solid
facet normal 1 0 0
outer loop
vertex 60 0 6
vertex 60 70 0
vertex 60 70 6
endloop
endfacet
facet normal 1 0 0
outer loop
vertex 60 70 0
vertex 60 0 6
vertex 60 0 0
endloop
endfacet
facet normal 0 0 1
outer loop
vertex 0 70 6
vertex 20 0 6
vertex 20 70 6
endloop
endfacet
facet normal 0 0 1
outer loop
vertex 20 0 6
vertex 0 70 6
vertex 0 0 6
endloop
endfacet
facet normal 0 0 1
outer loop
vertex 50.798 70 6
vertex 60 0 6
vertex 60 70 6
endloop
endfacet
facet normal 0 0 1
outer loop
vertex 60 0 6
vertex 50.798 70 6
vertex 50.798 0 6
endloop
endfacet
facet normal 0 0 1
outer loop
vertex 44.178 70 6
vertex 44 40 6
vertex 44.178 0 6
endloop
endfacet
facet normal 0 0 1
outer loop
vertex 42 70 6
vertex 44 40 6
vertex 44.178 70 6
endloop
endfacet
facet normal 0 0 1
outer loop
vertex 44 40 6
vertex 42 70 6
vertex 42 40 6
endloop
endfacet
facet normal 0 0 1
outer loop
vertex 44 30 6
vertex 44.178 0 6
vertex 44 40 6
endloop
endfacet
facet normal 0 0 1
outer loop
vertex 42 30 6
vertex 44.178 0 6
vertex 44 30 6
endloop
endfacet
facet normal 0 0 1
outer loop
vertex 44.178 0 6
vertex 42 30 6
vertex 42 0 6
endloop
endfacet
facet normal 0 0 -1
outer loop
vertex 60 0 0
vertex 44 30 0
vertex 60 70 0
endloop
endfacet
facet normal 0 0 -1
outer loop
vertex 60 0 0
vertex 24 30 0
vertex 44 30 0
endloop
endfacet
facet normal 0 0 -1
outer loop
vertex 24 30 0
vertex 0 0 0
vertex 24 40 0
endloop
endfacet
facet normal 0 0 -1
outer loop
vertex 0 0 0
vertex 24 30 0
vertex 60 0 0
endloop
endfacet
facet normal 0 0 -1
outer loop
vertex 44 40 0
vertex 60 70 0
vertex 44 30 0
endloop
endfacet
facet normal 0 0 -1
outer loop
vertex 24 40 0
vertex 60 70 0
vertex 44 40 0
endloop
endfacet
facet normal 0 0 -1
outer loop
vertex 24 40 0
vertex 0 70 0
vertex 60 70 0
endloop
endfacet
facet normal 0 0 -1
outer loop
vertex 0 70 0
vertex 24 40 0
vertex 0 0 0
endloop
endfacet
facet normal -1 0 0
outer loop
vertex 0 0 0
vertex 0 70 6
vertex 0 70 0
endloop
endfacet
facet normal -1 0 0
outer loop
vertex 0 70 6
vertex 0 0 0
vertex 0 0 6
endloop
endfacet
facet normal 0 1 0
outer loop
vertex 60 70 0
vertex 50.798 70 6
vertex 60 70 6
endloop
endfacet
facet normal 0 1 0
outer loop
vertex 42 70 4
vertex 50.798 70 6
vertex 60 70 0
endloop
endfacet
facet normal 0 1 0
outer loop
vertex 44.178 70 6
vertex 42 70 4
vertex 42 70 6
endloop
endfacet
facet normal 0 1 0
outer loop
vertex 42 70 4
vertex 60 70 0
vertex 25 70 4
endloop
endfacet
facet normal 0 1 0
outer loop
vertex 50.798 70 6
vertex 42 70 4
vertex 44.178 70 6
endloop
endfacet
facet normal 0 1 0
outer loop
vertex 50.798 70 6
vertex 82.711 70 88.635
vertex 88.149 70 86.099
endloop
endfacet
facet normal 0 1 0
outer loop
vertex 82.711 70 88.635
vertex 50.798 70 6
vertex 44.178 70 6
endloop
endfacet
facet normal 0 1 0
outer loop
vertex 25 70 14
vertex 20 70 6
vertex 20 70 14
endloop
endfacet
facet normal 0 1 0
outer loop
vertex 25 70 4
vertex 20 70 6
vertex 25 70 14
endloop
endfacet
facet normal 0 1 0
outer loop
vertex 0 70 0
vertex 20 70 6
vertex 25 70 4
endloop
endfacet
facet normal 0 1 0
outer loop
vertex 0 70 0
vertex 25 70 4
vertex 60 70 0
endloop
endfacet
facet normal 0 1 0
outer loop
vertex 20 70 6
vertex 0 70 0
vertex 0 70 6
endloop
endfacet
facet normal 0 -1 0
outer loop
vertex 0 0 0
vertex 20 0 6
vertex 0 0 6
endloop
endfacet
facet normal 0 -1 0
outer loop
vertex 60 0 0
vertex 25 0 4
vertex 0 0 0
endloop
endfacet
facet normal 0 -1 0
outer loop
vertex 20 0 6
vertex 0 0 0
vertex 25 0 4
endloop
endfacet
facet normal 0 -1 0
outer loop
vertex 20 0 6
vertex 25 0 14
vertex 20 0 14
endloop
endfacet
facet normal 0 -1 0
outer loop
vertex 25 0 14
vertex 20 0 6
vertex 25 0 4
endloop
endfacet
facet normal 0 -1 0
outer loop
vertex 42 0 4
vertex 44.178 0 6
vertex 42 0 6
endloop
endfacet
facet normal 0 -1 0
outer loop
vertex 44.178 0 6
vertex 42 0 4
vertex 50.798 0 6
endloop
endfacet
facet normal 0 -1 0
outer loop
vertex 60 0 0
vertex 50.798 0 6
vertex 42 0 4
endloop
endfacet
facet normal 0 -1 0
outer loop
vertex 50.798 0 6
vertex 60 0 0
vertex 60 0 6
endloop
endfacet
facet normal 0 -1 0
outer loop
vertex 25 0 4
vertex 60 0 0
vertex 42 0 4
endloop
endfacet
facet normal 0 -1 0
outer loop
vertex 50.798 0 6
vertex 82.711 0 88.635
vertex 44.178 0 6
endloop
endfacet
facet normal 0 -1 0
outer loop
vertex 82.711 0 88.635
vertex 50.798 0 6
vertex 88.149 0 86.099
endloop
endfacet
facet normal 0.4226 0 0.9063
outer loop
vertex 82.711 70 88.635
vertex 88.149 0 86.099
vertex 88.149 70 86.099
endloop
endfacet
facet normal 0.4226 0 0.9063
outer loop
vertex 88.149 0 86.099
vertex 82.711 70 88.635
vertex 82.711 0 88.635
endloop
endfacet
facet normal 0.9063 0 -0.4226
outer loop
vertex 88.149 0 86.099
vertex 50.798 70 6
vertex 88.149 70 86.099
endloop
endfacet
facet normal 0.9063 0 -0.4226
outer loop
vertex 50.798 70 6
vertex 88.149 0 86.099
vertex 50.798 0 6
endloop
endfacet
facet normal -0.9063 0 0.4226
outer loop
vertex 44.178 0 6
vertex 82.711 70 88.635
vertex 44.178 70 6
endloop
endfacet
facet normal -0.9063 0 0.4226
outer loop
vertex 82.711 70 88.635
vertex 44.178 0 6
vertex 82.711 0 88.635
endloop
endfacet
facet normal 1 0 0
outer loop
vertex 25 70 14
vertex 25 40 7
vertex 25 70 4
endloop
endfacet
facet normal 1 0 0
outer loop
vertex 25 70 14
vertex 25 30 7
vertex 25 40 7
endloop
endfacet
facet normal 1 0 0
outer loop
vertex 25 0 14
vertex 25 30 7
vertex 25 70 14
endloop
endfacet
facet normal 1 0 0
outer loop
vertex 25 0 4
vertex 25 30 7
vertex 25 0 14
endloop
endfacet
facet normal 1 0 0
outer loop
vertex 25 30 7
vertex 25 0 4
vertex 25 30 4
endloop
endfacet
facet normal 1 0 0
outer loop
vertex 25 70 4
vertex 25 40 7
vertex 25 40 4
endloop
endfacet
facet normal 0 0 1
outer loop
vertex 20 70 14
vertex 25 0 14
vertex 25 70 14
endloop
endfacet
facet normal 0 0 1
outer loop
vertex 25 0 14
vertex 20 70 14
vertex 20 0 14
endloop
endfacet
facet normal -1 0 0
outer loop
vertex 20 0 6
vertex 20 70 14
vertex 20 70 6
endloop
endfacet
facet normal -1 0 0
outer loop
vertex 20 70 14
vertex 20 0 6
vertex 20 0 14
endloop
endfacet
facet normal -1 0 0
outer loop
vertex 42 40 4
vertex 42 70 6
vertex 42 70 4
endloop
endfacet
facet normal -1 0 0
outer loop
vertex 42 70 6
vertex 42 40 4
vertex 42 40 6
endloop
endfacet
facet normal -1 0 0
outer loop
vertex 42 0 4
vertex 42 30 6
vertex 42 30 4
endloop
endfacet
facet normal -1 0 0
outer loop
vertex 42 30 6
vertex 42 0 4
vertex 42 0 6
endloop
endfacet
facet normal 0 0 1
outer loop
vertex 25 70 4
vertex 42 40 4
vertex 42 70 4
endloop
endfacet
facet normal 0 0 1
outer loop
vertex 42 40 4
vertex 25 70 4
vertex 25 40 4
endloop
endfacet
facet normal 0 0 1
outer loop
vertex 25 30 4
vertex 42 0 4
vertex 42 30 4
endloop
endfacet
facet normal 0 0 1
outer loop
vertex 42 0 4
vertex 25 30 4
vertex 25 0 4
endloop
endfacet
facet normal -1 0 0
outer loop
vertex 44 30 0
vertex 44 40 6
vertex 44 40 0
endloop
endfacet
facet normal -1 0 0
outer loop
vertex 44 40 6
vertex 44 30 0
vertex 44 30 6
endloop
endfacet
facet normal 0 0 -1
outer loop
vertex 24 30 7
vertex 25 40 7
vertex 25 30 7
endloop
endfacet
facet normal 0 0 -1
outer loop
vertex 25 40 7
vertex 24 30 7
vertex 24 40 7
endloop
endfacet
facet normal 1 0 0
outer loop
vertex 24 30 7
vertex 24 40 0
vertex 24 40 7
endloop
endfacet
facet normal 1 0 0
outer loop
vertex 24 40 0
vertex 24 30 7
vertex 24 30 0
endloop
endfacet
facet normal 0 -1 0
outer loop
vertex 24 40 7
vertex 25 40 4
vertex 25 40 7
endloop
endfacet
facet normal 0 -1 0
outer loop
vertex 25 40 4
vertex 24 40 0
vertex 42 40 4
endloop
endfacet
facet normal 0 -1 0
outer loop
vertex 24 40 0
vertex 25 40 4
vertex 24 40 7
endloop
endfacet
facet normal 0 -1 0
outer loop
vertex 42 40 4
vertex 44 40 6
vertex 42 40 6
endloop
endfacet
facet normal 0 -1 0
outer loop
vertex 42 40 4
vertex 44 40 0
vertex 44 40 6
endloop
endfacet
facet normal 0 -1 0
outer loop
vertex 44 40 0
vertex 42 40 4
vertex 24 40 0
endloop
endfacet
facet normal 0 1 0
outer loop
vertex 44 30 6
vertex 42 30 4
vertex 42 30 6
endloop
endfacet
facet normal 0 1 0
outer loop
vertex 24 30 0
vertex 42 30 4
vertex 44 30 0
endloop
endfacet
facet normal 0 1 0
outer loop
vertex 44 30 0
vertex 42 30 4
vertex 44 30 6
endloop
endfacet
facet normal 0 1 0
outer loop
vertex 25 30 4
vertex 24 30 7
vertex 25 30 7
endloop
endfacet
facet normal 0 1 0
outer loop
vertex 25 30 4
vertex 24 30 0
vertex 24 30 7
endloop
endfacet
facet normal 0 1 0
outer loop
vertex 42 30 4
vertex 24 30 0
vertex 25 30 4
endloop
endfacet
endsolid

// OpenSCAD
// Phone stand for the desk, with a notch for the charging cable. The phone leans back at
// 25 degrees against the back plate, its bottom edge in a groove behind a lip. Takes a
// phone in a case up to 15 mm thick. Print flat on its base, any filament, no supports.

width  = 70;
base_l = 60; base_t = 6;
back_t = 6;  back_h = 95; lean = 25;   // degrees back from vertical
lip_x  = 20; lip_t = 5; lip_h = 14;    // the front lip
groove_depth = 2;
cable  = 10;

difference() {
    union() {
        cube([base_l, width, base_t]);
        translate([48, 0, 0]) rotate([0, lean, 0]) translate([-back_t, 0, 0]) cube([back_t, width, back_h]);   // back plate, leaning away
        translate([lip_x, 0, 0]) cube([lip_t, width, lip_h]);                                               // front lip
    }
    translate([lip_x + lip_t, -1, base_t - groove_depth]) cube([42 - lip_x - lip_t, width + 2, 30]);         // groove the phone stands in
    translate([lip_x + lip_t - 1, width / 2 - cable / 2, -1]) cube([20, cable, base_t + 2]);               // cable notch through the base
    translate([-1, -1, -1]) cube([base_l + 20, width + 2, 1]);                                               // trim below the bed
}
